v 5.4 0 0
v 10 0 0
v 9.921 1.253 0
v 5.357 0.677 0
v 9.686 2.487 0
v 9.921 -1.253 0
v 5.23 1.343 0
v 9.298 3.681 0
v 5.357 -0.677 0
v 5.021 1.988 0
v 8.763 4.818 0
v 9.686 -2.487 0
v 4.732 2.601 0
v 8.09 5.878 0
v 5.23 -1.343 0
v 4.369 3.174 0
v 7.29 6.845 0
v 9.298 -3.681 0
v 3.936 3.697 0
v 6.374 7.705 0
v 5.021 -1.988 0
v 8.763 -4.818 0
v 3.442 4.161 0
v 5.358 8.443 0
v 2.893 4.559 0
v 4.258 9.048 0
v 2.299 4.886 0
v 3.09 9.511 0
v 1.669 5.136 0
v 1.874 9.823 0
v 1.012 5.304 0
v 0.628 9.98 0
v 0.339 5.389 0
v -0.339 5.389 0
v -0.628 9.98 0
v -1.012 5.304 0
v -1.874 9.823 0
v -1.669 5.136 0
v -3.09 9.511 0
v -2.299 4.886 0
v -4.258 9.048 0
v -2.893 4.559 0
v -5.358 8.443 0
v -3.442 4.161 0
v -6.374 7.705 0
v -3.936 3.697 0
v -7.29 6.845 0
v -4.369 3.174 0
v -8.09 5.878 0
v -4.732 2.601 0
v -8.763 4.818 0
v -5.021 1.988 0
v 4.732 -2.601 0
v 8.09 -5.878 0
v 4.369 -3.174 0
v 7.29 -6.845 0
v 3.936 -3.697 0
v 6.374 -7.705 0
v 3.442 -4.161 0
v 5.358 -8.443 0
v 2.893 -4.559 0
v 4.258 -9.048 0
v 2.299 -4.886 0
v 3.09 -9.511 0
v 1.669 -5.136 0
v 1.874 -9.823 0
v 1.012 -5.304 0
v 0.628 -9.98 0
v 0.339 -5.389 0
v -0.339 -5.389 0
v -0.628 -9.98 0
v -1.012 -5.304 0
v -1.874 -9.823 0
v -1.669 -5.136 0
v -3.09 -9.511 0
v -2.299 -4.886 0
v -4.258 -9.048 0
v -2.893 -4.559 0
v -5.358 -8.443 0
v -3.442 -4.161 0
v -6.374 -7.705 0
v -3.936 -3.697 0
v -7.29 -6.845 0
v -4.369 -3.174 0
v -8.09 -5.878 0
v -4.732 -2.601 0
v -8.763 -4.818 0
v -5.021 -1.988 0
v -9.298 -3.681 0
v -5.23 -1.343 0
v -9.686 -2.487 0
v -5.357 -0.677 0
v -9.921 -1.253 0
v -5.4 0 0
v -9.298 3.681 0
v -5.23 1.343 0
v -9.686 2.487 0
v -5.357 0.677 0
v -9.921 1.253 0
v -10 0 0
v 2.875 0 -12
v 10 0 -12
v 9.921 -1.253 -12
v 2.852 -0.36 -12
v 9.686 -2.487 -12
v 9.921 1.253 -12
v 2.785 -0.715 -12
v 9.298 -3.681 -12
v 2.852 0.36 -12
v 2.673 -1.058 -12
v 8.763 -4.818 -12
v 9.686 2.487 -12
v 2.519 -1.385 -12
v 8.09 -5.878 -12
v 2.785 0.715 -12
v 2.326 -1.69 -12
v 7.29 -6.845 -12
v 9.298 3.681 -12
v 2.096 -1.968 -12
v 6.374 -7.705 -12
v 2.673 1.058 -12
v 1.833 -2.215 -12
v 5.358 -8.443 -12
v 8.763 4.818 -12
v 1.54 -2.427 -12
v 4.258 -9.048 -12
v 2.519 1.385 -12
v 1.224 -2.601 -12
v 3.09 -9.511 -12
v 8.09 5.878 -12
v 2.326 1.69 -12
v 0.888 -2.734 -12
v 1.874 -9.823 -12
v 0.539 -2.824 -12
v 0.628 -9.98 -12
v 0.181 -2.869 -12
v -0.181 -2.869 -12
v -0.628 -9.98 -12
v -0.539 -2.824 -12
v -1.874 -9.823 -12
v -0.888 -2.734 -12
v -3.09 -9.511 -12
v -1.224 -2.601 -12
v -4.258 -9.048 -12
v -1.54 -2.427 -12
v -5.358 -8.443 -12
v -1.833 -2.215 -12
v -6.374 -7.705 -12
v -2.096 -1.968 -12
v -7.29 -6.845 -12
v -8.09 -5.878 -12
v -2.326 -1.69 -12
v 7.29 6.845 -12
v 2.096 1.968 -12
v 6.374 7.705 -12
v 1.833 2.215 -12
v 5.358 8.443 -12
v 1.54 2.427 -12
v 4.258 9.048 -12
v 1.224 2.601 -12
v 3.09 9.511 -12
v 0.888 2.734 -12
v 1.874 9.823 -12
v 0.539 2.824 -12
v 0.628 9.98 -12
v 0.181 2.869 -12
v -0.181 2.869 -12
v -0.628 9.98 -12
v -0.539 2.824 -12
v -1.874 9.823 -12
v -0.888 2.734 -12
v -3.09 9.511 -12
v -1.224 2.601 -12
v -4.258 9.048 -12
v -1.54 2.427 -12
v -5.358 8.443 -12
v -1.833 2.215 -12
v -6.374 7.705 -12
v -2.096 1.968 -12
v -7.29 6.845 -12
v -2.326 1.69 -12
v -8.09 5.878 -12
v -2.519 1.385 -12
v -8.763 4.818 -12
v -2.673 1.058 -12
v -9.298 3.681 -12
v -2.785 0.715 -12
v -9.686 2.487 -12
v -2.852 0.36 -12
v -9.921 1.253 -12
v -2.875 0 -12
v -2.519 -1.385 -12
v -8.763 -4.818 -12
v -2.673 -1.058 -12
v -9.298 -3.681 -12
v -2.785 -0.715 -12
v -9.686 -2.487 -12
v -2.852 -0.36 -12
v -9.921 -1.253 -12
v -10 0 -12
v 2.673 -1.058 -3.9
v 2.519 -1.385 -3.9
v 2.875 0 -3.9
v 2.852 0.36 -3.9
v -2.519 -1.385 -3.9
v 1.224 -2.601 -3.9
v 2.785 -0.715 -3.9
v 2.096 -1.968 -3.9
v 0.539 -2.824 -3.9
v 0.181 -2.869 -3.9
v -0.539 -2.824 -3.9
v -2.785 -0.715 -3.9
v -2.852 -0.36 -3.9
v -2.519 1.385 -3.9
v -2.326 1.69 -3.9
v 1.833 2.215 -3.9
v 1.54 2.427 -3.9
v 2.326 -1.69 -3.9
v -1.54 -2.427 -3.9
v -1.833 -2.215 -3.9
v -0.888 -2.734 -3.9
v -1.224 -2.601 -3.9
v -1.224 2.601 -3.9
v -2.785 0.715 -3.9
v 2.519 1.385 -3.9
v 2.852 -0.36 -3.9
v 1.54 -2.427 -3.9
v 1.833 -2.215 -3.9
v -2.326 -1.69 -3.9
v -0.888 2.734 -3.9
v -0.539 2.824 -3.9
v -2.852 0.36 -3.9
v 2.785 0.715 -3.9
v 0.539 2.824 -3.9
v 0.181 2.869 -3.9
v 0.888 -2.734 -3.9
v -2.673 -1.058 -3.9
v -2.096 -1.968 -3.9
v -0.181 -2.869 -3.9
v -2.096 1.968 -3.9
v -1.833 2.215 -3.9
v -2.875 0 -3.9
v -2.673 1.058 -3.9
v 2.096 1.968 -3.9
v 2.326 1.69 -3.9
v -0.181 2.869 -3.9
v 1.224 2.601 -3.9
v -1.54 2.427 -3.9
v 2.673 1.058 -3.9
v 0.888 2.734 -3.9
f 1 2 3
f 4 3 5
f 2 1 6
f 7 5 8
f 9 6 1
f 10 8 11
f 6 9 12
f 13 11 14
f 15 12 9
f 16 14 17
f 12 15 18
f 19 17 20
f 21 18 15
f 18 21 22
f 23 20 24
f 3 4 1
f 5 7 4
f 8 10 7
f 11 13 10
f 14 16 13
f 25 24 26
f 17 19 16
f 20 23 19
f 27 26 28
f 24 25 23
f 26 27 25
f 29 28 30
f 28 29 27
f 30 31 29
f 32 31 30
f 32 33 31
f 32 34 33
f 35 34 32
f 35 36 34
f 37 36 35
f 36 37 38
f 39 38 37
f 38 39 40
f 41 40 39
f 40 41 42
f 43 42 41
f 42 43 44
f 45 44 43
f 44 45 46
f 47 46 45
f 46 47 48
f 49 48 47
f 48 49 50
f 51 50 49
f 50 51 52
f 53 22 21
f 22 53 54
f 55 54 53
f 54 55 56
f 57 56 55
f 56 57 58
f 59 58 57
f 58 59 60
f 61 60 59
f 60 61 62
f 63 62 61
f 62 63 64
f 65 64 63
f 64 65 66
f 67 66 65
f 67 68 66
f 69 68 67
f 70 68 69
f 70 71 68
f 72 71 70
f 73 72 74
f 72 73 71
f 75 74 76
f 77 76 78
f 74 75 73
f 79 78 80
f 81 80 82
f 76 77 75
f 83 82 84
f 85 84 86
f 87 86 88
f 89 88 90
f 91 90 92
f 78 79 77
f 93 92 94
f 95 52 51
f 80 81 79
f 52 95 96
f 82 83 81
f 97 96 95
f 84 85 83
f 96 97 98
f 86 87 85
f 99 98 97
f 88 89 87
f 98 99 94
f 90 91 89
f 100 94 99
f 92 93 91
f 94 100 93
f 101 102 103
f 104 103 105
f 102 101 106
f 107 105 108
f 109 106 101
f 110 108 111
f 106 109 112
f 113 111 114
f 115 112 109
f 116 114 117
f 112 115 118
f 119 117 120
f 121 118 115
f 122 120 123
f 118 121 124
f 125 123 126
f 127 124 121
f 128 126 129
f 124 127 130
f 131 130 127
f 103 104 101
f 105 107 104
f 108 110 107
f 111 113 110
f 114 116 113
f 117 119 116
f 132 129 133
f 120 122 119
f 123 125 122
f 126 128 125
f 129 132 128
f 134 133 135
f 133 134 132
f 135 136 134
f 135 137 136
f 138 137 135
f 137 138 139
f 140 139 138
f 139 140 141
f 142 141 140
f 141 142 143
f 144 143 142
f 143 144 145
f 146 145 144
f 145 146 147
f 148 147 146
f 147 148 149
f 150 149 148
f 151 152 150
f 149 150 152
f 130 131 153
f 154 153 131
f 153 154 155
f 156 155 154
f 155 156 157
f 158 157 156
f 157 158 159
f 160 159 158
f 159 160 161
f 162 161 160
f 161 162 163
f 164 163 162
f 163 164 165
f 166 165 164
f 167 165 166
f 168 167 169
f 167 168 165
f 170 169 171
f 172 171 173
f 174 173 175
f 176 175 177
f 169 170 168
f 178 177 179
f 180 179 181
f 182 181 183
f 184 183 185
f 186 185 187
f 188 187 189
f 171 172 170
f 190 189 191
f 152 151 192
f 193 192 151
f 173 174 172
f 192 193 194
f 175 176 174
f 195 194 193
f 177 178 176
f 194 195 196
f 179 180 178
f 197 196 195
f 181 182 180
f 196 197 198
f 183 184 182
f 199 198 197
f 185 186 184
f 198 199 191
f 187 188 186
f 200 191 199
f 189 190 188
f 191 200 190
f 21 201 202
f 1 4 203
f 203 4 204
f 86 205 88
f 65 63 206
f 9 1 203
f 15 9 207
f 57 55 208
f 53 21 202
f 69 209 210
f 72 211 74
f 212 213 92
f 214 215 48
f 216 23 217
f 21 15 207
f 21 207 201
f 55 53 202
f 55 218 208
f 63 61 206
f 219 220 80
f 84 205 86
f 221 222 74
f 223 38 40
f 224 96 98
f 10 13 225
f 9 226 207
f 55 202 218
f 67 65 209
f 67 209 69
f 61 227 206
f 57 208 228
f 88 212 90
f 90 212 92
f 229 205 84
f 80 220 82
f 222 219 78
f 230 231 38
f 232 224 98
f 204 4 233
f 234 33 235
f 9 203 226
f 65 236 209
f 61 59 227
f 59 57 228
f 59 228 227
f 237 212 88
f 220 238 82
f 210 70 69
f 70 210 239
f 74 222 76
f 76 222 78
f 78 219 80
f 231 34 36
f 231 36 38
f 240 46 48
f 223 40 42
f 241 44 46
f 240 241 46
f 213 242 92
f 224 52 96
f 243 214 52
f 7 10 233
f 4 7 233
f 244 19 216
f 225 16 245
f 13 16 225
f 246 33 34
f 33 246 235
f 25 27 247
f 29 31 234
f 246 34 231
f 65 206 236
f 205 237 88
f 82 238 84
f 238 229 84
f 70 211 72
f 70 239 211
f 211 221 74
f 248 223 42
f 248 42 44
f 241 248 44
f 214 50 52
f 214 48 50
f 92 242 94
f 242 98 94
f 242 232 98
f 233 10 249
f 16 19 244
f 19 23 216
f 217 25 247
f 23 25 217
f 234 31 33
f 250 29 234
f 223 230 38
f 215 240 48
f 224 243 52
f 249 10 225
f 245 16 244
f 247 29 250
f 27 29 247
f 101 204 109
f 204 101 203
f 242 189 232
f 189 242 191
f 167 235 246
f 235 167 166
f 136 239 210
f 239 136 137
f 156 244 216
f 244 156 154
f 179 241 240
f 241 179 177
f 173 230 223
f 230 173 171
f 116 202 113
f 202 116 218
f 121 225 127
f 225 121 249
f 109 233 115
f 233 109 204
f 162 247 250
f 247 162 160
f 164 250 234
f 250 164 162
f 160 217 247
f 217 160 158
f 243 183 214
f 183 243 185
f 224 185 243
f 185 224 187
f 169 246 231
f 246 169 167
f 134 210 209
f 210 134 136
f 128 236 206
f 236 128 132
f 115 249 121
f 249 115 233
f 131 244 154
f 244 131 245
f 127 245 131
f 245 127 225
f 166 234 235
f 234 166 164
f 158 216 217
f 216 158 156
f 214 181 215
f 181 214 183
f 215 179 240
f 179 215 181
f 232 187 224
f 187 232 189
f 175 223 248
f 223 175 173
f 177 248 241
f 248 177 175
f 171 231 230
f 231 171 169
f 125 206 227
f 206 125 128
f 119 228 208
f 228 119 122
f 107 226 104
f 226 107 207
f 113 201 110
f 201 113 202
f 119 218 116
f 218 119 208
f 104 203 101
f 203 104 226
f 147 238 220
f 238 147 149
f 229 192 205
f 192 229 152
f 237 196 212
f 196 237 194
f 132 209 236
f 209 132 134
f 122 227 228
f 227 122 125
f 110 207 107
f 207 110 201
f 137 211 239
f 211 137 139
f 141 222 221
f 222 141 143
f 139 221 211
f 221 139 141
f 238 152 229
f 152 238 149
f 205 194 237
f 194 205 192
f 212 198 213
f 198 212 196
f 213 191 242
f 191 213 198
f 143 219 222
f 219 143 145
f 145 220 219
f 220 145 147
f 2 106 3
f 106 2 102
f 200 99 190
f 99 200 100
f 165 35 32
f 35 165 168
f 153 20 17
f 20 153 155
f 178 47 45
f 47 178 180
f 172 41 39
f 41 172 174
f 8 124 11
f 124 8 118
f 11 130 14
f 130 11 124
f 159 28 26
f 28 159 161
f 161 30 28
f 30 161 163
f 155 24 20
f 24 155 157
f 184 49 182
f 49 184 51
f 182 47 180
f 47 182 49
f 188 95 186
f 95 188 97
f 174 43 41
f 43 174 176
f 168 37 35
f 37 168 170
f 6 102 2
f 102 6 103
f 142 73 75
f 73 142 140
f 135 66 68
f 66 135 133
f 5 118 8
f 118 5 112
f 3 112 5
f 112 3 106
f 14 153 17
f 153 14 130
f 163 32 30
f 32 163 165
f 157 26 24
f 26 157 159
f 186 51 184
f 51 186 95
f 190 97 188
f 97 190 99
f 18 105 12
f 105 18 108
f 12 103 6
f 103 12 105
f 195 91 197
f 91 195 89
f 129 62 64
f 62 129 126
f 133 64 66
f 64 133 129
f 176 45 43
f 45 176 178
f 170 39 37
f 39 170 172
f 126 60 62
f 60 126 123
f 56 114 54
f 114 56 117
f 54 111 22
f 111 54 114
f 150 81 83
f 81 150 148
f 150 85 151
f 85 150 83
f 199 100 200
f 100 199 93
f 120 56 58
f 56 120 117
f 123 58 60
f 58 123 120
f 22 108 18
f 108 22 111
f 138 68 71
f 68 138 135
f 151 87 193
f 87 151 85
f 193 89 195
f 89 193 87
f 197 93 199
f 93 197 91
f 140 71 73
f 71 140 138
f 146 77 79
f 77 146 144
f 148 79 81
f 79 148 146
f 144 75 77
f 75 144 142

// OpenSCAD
$fn = 50;


difference() {
	union() {
		translate(v = [0, 0, -12.0000000000]) {
			cylinder(h = 12, r = 10.0000000000);
		}
		cylinder(h = 0, r = 13.0000000000);
	}
	union() {
		translate(v = [0, 0, 0]) {
			rotate(a = [0, 0, 0]) {
				difference() {
					union() {
						#translate(v = [0, 0, -12.0000000000]) {
							cylinder(h = 12, r = 2.6000000000);
						}
						#translate(v = [0, 0, -3.9000000000]) {
							cylinder(h = 3.9000000000, r1 = 2.8750000000, r2 = 5.4000000000);
						}
						#translate(v = [0, 0, -12.0000000000]) {
							cylinder(h = 12, r = 2.8750000000);
						}
						#translate(v = [0, 0, -12.0000000000]) {
							cylinder(h = 12, r = 2.6000000000);
						}
					}
					union();
				}
			}
		}
	}
}
